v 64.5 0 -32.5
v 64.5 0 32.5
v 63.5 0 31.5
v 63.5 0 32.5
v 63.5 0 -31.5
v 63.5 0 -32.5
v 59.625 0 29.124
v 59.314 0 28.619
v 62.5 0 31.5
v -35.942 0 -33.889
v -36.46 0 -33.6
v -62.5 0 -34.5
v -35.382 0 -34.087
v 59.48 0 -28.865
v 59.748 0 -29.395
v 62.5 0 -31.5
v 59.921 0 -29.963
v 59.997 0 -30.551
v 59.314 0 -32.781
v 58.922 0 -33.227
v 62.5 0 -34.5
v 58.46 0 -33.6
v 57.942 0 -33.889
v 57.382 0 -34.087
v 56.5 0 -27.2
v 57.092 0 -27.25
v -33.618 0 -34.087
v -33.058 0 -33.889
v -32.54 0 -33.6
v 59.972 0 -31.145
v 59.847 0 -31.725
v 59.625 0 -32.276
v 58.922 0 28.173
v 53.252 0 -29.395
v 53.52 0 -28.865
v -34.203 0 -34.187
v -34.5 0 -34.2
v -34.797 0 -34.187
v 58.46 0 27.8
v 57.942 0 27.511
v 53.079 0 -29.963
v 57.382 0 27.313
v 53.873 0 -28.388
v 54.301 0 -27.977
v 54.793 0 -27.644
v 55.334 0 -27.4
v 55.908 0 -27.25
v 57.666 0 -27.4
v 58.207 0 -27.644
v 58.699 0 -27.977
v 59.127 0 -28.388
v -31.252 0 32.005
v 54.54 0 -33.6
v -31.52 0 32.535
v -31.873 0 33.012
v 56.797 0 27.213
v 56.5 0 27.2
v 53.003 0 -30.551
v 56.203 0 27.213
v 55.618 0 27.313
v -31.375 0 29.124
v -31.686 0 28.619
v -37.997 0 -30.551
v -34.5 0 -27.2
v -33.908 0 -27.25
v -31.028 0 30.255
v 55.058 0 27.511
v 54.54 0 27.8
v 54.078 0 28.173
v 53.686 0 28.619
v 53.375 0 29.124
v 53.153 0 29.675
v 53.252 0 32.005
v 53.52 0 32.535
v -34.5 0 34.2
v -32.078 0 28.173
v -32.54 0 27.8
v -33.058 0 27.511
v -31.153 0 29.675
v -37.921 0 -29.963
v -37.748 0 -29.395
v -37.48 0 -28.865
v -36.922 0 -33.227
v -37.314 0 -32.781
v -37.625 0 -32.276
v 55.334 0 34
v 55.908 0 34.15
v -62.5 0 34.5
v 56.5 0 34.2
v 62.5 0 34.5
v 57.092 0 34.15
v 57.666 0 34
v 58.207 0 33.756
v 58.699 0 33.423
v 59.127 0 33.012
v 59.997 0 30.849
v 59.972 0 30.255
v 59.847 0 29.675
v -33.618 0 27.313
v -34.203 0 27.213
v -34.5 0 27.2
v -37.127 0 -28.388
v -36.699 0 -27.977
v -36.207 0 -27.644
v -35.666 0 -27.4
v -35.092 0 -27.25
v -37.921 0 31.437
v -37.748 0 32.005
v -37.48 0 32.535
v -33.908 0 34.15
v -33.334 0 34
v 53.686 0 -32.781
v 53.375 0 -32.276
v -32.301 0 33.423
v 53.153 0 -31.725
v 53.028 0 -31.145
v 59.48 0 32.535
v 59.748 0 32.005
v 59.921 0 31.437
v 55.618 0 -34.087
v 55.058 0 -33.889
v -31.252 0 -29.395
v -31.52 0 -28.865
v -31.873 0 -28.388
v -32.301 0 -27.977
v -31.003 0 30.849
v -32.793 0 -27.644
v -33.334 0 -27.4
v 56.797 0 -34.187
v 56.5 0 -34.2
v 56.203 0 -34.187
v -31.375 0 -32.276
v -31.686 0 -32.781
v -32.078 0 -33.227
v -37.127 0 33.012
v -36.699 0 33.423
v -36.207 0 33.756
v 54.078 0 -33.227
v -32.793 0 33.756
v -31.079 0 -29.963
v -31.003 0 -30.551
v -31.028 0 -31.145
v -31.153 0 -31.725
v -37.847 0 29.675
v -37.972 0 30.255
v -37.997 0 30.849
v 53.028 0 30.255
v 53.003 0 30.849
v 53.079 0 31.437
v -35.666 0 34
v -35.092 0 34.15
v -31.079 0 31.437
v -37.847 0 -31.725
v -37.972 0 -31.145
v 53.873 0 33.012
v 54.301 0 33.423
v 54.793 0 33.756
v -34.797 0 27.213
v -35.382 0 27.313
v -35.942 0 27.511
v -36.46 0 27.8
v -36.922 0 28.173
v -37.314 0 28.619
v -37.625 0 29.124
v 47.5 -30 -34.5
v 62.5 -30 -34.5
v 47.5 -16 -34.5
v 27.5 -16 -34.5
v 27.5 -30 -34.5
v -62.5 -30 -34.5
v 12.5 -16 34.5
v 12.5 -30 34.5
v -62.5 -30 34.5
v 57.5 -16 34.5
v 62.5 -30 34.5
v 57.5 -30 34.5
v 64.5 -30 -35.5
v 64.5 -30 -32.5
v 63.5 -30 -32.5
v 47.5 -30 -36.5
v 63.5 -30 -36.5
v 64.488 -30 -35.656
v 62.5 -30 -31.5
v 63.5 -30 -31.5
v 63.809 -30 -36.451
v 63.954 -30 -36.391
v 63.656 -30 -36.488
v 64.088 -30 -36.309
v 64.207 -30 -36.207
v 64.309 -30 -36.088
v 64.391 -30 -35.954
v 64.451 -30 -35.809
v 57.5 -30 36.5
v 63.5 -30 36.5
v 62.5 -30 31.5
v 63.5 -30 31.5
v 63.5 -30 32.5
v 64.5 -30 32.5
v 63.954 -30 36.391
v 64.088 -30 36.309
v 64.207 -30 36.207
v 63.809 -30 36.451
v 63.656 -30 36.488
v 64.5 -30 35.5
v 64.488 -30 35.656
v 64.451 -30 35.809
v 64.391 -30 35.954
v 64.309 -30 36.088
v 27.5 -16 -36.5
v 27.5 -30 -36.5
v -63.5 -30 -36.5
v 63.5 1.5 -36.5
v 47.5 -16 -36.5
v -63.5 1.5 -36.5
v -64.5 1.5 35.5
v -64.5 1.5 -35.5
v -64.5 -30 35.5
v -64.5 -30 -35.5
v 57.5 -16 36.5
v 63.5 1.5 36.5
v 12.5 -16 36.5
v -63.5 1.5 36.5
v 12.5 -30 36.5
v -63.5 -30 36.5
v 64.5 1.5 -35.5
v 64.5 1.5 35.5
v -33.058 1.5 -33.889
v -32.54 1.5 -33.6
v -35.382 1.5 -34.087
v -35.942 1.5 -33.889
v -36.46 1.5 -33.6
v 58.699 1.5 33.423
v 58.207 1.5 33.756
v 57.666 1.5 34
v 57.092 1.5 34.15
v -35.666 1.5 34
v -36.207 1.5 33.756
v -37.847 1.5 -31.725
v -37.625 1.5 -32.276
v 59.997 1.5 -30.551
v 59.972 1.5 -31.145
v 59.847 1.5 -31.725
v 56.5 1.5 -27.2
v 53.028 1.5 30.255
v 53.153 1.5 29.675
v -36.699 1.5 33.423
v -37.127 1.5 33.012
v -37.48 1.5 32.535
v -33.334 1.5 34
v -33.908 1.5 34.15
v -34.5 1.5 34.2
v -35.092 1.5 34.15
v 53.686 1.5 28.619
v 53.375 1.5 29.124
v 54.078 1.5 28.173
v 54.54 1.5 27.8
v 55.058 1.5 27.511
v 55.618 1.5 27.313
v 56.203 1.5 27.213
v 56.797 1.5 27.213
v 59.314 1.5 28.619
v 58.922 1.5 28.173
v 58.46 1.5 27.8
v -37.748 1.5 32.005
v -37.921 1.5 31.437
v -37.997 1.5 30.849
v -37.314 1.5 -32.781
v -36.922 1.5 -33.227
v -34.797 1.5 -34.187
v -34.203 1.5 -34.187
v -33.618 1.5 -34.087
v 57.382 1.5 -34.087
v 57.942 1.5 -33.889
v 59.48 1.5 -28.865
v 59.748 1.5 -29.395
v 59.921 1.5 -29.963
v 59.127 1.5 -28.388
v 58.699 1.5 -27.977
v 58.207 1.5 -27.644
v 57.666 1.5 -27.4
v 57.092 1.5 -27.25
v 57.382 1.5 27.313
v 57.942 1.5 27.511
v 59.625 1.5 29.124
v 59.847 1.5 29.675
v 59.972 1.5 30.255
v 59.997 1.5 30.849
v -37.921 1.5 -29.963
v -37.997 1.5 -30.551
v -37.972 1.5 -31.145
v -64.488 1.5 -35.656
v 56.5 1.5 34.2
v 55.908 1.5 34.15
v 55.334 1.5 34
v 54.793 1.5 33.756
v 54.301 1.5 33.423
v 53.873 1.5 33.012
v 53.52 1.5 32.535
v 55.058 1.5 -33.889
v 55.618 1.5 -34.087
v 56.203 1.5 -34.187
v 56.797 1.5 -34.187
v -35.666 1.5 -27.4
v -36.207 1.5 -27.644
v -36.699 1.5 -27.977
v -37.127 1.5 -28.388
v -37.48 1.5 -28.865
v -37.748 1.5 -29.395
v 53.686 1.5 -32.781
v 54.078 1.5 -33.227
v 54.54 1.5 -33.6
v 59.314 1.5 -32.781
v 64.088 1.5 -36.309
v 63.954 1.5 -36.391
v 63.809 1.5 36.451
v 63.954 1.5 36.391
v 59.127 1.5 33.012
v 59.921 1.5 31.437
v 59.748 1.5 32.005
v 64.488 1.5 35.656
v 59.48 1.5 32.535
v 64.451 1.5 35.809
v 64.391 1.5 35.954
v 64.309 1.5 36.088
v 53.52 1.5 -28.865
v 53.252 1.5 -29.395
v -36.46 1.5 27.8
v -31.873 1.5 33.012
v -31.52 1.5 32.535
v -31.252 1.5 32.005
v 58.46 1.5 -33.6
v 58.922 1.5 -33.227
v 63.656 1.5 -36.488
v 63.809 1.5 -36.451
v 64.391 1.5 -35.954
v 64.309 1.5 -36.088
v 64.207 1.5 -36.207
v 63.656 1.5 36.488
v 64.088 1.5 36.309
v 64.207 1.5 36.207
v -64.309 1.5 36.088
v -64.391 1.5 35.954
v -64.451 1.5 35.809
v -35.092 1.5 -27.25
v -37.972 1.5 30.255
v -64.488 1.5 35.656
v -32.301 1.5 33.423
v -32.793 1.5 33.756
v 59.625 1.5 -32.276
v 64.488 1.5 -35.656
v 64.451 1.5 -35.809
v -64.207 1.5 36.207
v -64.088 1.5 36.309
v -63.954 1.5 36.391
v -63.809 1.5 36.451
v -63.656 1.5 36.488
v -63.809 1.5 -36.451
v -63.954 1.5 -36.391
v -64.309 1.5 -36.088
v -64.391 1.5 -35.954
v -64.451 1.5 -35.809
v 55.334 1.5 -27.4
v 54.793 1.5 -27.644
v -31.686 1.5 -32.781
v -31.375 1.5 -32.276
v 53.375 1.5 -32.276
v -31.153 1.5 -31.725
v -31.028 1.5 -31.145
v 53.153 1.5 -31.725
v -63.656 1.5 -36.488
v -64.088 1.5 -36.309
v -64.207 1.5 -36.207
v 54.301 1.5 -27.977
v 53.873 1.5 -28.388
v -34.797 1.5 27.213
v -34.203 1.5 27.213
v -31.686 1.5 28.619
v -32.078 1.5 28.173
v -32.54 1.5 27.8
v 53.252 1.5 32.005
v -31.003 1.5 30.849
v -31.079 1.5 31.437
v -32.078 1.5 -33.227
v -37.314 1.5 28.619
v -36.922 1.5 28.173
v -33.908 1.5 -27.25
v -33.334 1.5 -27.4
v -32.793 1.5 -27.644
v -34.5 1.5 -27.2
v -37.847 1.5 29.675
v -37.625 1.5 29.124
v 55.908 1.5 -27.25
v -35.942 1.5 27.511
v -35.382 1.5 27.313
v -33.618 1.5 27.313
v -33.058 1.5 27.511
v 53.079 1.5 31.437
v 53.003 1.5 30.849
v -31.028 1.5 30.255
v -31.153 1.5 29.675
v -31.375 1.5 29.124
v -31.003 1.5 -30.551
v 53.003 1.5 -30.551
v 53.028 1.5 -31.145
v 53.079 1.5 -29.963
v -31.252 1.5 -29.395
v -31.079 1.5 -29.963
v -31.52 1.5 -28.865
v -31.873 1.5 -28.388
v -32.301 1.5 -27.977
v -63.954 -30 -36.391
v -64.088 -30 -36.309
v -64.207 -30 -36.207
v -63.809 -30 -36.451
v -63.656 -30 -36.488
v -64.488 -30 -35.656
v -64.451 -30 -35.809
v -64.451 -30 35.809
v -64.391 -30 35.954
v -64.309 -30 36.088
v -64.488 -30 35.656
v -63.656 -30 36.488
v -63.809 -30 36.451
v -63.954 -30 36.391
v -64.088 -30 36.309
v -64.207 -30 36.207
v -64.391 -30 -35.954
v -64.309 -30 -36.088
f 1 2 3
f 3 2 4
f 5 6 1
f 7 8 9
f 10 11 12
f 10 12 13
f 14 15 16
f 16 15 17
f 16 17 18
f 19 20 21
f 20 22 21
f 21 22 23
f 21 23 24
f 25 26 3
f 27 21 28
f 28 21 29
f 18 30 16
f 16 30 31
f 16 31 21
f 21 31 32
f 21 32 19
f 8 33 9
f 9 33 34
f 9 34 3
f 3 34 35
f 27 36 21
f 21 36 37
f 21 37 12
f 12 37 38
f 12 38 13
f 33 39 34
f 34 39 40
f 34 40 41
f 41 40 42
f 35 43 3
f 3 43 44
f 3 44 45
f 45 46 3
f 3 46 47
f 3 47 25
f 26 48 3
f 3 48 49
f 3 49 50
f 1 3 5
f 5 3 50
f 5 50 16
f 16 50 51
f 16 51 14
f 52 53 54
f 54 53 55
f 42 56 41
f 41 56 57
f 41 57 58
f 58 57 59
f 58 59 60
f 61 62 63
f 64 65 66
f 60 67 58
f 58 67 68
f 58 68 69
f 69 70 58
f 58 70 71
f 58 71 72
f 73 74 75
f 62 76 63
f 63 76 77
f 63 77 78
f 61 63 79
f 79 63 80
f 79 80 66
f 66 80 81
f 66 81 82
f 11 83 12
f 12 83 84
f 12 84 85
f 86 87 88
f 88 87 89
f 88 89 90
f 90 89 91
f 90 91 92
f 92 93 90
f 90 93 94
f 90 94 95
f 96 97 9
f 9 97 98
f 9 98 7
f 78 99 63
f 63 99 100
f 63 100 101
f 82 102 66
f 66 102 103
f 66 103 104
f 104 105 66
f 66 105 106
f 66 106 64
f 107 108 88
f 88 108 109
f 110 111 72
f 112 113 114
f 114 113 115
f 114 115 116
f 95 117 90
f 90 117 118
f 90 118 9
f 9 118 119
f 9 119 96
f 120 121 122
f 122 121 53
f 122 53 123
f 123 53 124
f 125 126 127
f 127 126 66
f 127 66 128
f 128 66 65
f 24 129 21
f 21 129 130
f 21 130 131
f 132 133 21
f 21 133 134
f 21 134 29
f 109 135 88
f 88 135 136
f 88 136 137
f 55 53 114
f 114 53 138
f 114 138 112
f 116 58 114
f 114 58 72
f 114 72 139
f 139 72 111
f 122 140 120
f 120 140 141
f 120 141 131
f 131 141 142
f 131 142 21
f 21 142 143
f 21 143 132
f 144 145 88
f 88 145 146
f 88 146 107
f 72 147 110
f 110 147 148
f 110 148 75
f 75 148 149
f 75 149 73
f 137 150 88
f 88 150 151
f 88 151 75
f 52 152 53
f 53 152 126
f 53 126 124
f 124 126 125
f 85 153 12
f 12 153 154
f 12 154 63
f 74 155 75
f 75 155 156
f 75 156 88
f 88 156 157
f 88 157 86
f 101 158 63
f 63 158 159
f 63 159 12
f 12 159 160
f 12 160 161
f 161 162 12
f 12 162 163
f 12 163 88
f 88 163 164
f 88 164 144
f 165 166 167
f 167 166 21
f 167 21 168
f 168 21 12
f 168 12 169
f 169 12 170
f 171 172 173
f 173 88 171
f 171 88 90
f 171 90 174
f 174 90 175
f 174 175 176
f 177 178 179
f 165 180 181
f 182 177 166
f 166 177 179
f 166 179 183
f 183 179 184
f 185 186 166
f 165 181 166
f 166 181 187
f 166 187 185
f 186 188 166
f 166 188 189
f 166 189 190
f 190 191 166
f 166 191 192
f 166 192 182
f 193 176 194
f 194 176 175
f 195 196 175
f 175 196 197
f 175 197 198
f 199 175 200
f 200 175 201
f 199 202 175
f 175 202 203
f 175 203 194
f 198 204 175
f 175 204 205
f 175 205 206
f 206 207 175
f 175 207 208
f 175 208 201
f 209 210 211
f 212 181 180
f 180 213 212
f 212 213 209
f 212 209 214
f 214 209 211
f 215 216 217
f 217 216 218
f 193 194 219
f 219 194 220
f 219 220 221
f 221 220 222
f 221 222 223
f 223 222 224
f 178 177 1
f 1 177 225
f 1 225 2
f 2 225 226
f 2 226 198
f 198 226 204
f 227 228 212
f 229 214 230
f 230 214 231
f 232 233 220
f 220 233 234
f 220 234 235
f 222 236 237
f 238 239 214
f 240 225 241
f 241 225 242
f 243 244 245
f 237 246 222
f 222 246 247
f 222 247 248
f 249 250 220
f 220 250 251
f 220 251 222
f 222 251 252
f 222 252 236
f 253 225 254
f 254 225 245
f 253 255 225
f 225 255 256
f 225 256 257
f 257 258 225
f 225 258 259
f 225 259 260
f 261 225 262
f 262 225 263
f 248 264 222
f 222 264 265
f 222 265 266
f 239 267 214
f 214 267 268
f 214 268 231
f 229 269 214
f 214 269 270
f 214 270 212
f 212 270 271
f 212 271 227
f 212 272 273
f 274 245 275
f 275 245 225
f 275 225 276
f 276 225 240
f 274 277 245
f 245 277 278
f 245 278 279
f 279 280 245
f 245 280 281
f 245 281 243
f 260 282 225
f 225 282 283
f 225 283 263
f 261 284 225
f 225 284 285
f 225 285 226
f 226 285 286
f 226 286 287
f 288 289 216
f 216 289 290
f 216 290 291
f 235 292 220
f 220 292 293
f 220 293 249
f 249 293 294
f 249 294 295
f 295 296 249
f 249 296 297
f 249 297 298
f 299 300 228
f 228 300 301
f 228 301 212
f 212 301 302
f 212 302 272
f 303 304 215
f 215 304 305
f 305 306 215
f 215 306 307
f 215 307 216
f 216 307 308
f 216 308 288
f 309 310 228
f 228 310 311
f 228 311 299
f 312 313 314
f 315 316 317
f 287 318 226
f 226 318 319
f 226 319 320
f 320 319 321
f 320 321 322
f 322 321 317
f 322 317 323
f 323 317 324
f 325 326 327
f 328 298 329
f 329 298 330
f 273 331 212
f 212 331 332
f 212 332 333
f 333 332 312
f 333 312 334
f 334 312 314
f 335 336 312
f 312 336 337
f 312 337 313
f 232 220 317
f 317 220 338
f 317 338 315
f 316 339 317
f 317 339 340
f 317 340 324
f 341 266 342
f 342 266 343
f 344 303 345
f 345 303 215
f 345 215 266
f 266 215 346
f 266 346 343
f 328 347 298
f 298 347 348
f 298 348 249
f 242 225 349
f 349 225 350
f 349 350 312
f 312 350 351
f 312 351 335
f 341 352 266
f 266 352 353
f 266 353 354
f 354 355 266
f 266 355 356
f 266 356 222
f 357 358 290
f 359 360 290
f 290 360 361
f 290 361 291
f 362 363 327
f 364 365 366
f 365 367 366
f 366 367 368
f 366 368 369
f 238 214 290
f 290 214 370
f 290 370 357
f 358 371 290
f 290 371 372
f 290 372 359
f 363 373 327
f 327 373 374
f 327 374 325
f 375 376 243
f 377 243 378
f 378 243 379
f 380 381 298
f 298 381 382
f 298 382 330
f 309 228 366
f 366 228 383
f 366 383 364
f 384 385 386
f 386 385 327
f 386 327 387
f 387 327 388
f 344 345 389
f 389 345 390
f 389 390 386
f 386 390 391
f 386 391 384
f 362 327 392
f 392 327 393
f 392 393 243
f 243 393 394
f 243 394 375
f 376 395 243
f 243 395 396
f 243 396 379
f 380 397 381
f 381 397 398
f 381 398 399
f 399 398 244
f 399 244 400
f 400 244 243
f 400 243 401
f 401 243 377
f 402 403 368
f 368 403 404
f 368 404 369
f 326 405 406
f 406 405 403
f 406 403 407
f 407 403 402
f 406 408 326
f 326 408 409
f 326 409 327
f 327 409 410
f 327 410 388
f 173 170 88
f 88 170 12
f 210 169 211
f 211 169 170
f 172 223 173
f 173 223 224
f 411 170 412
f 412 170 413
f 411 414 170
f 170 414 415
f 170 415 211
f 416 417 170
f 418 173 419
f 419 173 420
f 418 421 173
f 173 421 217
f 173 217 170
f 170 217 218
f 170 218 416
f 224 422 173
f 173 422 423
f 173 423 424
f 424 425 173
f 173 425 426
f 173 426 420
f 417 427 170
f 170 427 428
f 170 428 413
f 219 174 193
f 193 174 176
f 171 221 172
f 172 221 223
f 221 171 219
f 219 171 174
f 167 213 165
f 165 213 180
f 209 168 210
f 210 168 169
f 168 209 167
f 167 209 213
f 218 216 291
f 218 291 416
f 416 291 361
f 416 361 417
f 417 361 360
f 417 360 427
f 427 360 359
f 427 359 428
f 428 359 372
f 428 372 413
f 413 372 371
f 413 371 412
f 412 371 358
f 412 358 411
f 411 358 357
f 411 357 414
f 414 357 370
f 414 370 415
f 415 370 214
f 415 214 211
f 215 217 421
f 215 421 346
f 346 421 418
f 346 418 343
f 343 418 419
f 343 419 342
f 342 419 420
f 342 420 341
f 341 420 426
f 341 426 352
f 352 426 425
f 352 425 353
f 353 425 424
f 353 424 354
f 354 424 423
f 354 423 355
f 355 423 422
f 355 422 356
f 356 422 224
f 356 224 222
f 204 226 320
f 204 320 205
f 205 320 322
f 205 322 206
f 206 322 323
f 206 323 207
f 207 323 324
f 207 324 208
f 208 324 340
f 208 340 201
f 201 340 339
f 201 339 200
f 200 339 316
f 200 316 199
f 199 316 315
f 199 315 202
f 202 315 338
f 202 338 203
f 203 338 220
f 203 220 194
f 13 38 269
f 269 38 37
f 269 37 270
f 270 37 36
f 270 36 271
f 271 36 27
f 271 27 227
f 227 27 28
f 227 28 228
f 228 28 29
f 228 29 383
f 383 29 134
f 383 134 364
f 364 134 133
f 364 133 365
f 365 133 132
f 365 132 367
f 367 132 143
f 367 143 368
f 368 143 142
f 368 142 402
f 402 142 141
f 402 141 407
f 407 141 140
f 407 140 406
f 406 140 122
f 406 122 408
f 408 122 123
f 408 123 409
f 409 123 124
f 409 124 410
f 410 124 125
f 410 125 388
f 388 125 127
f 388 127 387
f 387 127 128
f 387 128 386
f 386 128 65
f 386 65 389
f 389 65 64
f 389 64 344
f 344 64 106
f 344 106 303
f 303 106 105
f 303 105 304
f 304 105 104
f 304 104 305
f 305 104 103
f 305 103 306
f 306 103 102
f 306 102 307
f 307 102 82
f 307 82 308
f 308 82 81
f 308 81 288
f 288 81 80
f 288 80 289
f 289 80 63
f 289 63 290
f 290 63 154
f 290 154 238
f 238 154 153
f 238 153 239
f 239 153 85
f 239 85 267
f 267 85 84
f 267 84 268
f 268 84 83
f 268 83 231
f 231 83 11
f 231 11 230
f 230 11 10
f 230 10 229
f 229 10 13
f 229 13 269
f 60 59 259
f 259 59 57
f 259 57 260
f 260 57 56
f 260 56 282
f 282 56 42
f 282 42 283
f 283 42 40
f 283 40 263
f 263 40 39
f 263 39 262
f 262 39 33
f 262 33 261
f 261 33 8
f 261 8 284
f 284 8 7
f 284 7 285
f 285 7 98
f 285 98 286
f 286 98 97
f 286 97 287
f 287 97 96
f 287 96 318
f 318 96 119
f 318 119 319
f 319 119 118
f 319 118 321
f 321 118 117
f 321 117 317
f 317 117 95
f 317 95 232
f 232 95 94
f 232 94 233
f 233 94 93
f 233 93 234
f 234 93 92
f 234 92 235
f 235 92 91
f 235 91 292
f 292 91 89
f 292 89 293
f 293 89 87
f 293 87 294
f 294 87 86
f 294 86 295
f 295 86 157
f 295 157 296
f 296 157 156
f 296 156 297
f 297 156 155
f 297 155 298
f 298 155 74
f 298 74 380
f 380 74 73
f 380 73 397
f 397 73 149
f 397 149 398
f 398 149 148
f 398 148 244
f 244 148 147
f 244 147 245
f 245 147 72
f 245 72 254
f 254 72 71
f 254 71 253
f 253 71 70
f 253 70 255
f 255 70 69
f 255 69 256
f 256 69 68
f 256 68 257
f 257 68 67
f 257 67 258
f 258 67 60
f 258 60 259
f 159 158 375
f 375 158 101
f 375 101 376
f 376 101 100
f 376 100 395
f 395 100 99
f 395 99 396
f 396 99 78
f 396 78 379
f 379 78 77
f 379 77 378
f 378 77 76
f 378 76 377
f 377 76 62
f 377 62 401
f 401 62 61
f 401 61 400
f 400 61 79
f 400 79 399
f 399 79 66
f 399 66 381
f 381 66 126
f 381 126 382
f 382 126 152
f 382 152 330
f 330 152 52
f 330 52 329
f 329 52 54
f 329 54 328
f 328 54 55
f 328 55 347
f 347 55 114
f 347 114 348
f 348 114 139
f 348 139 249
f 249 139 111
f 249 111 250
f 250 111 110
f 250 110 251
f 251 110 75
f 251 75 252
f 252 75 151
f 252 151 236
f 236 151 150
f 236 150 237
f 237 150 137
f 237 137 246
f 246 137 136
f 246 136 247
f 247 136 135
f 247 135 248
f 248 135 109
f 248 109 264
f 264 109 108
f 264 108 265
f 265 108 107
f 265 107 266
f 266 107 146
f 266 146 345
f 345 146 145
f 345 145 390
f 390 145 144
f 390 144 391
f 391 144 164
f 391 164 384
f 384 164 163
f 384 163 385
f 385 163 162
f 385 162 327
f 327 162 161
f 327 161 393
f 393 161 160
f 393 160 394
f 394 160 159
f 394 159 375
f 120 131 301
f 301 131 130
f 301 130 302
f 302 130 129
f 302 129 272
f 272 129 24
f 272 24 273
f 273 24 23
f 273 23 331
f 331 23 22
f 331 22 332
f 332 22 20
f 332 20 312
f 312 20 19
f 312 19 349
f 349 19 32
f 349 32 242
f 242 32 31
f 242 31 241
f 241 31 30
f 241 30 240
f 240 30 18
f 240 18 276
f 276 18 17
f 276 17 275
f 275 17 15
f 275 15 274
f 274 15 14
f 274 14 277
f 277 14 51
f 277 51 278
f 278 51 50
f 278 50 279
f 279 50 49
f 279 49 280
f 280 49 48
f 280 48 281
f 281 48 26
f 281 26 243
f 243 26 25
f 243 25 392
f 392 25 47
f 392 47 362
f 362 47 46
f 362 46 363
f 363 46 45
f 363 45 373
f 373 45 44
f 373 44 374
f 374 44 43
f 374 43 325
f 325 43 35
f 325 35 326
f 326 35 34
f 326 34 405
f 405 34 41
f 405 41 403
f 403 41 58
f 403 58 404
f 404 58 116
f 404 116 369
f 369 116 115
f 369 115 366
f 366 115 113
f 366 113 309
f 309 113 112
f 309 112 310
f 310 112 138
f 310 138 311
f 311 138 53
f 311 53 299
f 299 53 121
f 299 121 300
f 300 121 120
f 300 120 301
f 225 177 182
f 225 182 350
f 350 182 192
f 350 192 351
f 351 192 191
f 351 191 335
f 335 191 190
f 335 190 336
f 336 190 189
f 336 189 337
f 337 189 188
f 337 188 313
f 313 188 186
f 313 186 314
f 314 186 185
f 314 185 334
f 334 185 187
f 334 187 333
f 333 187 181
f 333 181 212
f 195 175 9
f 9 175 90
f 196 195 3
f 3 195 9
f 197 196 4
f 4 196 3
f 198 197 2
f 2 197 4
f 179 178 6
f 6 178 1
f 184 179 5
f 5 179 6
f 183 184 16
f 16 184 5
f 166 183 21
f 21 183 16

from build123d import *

# Parameters (mm, degrees)
SKETCH_2_W          = 129
SKETCH_2_H          = 73
EXTRUDE_1_DEPTH     = 1.5
SKETCH_2_4_W        = 2
SKETCH_2_4_H        = 69
EXTRUDE_2_DEPTH     = 30
SKETCH_2_5_W        = 129
SKETCH_2_5_H        = 2
EXTRUDE_3_DEPTH     = 30
SKETCH_2_6_W        = 129
SKETCH_2_6_H        = 2
EXTRUDE_4_DEPTH     = 30
SKETCH_5_W          = 45
SKETCH_5_H          = 2
CUT_EXTRUDE_2_DEPTH = 14
SKETCH_6_W          = 20
SKETCH_6_H          = 2
CUT_EXTRUDE_3_DEPTH = 14
FILLET_1_R          = 1
FILLET_2_R          = 1
FILLET_5_R          = 1
SKETCH_8_R          = 3.5
CUT_EXTRUDE_4_DEPTH = 10
FILLET_6_R          = 1
EXTRUDE_5_DEPTH     = 30


with BuildPart() as part:
    # 草图2 → 凸台-拉伸1 (new body)
    with BuildSketch(Plane(origin=(0, 0, 0), x_dir=(1, 0, 0), z_dir=(0, 1, 0))):
        Rectangle(SKETCH_2_W, SKETCH_2_H)
    extrude(amount=EXTRUDE_1_DEPTH)

    # 草图2<4> → 凸台-拉伸2 (add)
    with BuildSketch(Plane(origin=(0, 0, 0), x_dir=(1, 0, 0), z_dir=(0, 1, 0))):
        with Locations((-63.5, 0)):
            Rectangle(SKETCH_2_4_W, SKETCH_2_4_H)
    extrude(amount=-EXTRUDE_2_DEPTH)

    # 草图2<5> → 凸台-拉伸3 (add)
    with BuildSketch(Plane(origin=(0, 0, 0), x_dir=(1, 0, 0), z_dir=(0, 1, 0))):
        with Locations((0, 35.5)):
            Rectangle(SKETCH_2_5_W, SKETCH_2_5_H)
    extrude(amount=-EXTRUDE_3_DEPTH)

    # 草图2<6> → 凸台-拉伸4 (add)
    with BuildSketch(Plane(origin=(0, 0, 0), x_dir=(1, 0, 0), z_dir=(0, 1, 0))):
        with Locations((0, -35.5)):
            Rectangle(SKETCH_2_6_W, SKETCH_2_6_H)
    extrude(amount=-EXTRUDE_4_DEPTH)

    # 草图5 → 切除-拉伸2 (cut)
    with BuildSketch(Plane.XZ.offset(30)):
        with Locations((35, 35.5)):
            Rectangle(SKETCH_5_W, SKETCH_5_H)
    extrude(amount=-CUT_EXTRUDE_2_DEPTH, mode=Mode.SUBTRACT)

    # 草图6 → 切除-拉伸3 (cut)
    with BuildSketch(Plane.XZ.offset(30)):
        with Locations((37.5, -35.5)):
            Rectangle(SKETCH_6_W, SKETCH_6_H)
    extrude(amount=-CUT_EXTRUDE_3_DEPTH, mode=Mode.SUBTRACT)

    # 圆角1
    fillet_1_edges = [part.edges().sort_by_distance(p)[0] for p in [
        (-64.5, -14.25, -36.5),
    ]]
    fillet(fillet_1_edges, radius=FILLET_1_R)

    # 圆角2
    fillet_2_edges = [part.edges().sort_by_distance(p)[0] for p in [
        (-64.5, -14.25, 36.5),
    ]]
    fillet(fillet_2_edges, radius=FILLET_2_R)

    # 圆角5
    fillet_5_edges = [part.edges().sort_by_distance(p)[0] for p in [
        (64.5, -14.25, 36.5),
    ]]
    fillet(fillet_5_edges, radius=FILLET_5_R)

    # 草图8 → 切除-拉伸4 (cut)
    with BuildSketch(Plane(origin=(0, 1.5, 0), x_dir=(1, 0, 0), z_dir=(0, 1, 0))):
        with Locations((-34.5, 30.7)):
            Circle(SKETCH_8_R)
        with Locations((56.5, 30.7)):
            Circle(SKETCH_8_R)
        with Locations((-34.5, -30.7)):
            Circle(SKETCH_8_R)
        with Locations((56.5, -30.7)):
            Circle(SKETCH_8_R)
    extrude(amount=-CUT_EXTRUDE_4_DEPTH, mode=Mode.SUBTRACT)

    # 圆角6
    fillet_6_edges = [part.edges().sort_by_distance(p)[0] for p in [
        (64.5, -14.25, -36.5),
    ]]
    fillet(fillet_6_edges, radius=FILLET_6_R)

    # 草图9 → 凸台-拉伸5 (add)
    with BuildSketch(Plane.XZ):
        Polygon((62.5, 34.5), (64.5, 34.5), (64.5, 32.5), (63.5, 32.5), (63.5, 31.5), (62.5, 31.5), align=None)
        Polygon((62.5, -34.5), (62.5, -31.5), (63.5, -31.5), (63.5, -32.5), (64.5, -32.5), (64.5, -34.5), align=None)
    extrude(amount=EXTRUDE_5_DEPTH)


solid = part.part
